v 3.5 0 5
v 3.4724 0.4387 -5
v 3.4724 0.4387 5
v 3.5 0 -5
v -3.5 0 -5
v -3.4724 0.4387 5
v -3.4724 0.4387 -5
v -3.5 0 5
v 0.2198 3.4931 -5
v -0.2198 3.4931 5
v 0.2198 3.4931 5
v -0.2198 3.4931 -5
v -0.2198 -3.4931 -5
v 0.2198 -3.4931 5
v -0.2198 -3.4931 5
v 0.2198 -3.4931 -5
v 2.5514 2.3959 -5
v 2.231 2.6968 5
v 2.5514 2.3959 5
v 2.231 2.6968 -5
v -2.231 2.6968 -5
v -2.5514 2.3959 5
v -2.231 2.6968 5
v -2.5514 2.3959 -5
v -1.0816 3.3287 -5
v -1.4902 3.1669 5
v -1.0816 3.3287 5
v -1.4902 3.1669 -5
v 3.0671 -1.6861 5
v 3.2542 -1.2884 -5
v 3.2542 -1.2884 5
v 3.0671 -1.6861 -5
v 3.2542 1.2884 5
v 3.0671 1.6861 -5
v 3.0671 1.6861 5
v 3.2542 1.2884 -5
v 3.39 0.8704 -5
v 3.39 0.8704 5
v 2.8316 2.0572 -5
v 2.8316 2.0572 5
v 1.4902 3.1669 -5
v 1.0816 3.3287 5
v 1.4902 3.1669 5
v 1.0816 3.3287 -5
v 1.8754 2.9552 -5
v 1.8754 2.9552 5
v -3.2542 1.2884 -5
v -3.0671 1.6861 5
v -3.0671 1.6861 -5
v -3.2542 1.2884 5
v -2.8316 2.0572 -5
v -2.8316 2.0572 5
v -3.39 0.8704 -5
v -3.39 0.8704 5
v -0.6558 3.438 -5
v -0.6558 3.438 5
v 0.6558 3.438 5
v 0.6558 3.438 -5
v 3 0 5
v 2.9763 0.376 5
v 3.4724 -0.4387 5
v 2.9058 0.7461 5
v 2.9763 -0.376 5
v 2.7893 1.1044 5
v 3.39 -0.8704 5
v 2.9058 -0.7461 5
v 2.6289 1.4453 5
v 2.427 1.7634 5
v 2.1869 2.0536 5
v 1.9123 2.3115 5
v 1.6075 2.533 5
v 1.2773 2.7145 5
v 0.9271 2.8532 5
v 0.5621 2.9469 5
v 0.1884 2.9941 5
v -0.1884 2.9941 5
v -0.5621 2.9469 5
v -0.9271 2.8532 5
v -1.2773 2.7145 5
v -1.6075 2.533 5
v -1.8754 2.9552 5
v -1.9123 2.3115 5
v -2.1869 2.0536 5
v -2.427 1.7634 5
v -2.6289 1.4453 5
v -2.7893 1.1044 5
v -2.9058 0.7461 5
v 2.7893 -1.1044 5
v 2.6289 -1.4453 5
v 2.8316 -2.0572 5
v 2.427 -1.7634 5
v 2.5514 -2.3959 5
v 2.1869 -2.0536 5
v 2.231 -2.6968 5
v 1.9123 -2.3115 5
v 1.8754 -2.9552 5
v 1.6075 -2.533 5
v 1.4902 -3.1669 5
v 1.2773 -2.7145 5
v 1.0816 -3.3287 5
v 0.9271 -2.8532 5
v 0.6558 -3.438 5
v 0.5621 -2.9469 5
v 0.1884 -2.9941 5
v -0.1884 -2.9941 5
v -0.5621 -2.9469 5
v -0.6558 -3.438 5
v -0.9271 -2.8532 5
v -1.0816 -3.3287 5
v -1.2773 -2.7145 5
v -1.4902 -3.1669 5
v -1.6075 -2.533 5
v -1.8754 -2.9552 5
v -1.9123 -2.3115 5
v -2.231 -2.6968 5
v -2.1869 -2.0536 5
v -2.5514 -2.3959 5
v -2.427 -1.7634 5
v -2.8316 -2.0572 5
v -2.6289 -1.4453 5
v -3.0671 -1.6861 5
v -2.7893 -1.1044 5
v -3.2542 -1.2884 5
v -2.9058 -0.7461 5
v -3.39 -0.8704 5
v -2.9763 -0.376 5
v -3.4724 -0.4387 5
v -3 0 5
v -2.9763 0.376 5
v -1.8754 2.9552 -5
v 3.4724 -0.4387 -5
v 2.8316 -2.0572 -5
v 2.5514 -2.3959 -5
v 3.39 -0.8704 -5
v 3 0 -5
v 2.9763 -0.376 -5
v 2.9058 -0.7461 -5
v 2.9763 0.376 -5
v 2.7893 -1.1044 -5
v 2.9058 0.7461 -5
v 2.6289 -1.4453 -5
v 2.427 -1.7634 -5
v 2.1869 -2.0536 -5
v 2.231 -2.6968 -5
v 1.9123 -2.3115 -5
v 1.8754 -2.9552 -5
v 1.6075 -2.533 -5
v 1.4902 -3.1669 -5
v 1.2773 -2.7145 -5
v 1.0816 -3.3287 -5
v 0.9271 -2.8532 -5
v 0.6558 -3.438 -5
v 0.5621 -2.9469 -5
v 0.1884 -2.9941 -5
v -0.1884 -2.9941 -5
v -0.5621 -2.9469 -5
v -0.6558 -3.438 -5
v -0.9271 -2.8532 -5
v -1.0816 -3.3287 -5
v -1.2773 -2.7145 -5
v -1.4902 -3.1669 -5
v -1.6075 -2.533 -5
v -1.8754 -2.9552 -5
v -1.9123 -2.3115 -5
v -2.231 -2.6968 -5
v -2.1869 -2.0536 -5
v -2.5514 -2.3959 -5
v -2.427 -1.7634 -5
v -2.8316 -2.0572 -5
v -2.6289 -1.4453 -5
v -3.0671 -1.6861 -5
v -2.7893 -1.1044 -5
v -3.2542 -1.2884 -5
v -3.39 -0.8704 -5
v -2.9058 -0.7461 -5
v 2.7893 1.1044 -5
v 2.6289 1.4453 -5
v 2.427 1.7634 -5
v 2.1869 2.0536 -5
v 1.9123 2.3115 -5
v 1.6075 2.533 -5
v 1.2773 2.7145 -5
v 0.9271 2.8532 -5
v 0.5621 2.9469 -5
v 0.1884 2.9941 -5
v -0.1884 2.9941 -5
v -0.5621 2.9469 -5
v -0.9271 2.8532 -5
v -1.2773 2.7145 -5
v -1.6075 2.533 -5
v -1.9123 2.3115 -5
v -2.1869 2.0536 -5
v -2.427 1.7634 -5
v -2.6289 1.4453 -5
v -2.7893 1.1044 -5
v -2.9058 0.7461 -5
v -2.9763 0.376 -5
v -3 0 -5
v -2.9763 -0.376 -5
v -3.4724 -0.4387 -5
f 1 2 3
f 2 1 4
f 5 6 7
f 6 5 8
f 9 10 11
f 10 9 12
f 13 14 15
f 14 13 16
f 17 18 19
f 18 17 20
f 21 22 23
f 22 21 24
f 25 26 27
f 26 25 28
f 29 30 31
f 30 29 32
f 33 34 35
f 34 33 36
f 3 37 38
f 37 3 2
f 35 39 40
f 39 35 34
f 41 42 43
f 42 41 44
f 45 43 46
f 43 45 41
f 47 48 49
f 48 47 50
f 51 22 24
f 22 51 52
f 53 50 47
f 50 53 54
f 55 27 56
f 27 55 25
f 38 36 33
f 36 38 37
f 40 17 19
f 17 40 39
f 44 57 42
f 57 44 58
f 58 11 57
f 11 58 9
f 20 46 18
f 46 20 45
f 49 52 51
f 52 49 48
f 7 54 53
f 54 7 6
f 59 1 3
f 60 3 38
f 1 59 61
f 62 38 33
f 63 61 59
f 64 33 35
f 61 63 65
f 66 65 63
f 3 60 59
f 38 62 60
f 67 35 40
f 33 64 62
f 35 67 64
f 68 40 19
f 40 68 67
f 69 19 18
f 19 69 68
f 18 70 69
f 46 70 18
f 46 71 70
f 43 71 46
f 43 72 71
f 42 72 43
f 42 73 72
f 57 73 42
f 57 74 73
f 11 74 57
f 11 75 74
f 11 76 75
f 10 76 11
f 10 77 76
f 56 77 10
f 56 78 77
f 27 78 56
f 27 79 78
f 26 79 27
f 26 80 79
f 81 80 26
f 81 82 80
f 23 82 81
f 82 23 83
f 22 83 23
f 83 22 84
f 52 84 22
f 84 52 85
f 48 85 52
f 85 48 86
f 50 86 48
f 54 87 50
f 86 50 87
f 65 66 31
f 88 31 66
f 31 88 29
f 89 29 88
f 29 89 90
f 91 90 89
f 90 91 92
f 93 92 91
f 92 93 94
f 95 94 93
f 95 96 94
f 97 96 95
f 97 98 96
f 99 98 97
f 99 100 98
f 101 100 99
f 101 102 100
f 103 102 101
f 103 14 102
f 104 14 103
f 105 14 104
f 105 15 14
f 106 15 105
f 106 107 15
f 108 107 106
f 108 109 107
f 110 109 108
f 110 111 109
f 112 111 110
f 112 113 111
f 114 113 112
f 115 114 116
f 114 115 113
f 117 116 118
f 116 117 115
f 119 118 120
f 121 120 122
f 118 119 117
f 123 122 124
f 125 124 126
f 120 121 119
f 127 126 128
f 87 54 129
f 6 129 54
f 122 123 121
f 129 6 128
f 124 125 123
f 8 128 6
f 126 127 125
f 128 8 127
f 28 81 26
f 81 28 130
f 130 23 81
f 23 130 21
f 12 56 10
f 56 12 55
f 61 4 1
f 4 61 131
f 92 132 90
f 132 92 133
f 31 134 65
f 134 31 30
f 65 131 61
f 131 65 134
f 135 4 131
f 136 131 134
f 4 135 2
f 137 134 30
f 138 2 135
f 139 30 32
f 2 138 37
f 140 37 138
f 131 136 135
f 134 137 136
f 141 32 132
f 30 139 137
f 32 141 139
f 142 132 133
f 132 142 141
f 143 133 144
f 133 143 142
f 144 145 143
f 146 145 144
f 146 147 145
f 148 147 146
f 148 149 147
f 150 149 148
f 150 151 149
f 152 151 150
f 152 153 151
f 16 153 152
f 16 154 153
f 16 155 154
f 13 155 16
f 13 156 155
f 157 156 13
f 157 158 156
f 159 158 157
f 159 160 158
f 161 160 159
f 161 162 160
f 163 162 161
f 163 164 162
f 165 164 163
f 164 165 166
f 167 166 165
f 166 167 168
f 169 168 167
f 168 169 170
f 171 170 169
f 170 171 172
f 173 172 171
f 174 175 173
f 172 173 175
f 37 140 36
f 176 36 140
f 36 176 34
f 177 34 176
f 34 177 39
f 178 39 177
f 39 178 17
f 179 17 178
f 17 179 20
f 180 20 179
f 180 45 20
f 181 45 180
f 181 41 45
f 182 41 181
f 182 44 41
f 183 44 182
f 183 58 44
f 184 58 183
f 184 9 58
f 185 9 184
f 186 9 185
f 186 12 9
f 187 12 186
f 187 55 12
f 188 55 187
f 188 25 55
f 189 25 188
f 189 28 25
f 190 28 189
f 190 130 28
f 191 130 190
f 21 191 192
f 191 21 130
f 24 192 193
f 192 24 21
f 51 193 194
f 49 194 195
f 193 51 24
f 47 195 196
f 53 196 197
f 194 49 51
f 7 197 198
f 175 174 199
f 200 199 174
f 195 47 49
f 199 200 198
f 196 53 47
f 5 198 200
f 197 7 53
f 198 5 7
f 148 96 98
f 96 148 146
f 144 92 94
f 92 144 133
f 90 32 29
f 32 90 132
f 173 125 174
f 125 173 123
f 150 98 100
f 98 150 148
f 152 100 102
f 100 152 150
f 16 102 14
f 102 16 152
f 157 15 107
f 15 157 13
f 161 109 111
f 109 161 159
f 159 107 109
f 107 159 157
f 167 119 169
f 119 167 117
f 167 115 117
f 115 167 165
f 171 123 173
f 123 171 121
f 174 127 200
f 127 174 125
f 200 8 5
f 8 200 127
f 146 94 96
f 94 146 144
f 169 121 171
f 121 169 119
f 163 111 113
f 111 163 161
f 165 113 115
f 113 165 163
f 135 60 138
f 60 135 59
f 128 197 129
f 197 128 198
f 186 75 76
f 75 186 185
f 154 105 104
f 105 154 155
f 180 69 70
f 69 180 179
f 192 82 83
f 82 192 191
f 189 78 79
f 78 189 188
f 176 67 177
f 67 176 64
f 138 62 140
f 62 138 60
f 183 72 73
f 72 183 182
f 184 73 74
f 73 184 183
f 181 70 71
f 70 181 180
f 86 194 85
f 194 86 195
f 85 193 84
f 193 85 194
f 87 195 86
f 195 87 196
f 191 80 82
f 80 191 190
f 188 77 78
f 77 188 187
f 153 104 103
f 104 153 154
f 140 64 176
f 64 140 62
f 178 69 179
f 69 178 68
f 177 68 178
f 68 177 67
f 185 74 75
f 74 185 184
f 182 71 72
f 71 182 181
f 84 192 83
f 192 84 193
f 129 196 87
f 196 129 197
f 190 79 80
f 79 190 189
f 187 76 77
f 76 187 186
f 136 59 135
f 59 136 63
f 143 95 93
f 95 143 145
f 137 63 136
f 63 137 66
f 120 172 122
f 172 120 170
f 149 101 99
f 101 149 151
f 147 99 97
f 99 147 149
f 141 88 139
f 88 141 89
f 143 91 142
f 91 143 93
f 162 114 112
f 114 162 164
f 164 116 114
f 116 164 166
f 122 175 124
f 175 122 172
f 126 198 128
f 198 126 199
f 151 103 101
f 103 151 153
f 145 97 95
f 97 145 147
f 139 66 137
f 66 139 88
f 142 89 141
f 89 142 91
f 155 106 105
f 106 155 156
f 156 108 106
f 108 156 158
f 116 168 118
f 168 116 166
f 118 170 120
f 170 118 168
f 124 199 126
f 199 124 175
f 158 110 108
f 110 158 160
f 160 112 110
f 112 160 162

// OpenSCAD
$fn = 50;


difference() {
	union() {
		translate(v = [0, 0, -5.0000000000]) {
			cylinder(h = 10, r = 3.5000000000);
		}
	}
	union() {
		translate(v = [0, 0, -100.0000000000]) {
			cylinder(h = 200, r = 3.0000000000);
		}
	}
}
